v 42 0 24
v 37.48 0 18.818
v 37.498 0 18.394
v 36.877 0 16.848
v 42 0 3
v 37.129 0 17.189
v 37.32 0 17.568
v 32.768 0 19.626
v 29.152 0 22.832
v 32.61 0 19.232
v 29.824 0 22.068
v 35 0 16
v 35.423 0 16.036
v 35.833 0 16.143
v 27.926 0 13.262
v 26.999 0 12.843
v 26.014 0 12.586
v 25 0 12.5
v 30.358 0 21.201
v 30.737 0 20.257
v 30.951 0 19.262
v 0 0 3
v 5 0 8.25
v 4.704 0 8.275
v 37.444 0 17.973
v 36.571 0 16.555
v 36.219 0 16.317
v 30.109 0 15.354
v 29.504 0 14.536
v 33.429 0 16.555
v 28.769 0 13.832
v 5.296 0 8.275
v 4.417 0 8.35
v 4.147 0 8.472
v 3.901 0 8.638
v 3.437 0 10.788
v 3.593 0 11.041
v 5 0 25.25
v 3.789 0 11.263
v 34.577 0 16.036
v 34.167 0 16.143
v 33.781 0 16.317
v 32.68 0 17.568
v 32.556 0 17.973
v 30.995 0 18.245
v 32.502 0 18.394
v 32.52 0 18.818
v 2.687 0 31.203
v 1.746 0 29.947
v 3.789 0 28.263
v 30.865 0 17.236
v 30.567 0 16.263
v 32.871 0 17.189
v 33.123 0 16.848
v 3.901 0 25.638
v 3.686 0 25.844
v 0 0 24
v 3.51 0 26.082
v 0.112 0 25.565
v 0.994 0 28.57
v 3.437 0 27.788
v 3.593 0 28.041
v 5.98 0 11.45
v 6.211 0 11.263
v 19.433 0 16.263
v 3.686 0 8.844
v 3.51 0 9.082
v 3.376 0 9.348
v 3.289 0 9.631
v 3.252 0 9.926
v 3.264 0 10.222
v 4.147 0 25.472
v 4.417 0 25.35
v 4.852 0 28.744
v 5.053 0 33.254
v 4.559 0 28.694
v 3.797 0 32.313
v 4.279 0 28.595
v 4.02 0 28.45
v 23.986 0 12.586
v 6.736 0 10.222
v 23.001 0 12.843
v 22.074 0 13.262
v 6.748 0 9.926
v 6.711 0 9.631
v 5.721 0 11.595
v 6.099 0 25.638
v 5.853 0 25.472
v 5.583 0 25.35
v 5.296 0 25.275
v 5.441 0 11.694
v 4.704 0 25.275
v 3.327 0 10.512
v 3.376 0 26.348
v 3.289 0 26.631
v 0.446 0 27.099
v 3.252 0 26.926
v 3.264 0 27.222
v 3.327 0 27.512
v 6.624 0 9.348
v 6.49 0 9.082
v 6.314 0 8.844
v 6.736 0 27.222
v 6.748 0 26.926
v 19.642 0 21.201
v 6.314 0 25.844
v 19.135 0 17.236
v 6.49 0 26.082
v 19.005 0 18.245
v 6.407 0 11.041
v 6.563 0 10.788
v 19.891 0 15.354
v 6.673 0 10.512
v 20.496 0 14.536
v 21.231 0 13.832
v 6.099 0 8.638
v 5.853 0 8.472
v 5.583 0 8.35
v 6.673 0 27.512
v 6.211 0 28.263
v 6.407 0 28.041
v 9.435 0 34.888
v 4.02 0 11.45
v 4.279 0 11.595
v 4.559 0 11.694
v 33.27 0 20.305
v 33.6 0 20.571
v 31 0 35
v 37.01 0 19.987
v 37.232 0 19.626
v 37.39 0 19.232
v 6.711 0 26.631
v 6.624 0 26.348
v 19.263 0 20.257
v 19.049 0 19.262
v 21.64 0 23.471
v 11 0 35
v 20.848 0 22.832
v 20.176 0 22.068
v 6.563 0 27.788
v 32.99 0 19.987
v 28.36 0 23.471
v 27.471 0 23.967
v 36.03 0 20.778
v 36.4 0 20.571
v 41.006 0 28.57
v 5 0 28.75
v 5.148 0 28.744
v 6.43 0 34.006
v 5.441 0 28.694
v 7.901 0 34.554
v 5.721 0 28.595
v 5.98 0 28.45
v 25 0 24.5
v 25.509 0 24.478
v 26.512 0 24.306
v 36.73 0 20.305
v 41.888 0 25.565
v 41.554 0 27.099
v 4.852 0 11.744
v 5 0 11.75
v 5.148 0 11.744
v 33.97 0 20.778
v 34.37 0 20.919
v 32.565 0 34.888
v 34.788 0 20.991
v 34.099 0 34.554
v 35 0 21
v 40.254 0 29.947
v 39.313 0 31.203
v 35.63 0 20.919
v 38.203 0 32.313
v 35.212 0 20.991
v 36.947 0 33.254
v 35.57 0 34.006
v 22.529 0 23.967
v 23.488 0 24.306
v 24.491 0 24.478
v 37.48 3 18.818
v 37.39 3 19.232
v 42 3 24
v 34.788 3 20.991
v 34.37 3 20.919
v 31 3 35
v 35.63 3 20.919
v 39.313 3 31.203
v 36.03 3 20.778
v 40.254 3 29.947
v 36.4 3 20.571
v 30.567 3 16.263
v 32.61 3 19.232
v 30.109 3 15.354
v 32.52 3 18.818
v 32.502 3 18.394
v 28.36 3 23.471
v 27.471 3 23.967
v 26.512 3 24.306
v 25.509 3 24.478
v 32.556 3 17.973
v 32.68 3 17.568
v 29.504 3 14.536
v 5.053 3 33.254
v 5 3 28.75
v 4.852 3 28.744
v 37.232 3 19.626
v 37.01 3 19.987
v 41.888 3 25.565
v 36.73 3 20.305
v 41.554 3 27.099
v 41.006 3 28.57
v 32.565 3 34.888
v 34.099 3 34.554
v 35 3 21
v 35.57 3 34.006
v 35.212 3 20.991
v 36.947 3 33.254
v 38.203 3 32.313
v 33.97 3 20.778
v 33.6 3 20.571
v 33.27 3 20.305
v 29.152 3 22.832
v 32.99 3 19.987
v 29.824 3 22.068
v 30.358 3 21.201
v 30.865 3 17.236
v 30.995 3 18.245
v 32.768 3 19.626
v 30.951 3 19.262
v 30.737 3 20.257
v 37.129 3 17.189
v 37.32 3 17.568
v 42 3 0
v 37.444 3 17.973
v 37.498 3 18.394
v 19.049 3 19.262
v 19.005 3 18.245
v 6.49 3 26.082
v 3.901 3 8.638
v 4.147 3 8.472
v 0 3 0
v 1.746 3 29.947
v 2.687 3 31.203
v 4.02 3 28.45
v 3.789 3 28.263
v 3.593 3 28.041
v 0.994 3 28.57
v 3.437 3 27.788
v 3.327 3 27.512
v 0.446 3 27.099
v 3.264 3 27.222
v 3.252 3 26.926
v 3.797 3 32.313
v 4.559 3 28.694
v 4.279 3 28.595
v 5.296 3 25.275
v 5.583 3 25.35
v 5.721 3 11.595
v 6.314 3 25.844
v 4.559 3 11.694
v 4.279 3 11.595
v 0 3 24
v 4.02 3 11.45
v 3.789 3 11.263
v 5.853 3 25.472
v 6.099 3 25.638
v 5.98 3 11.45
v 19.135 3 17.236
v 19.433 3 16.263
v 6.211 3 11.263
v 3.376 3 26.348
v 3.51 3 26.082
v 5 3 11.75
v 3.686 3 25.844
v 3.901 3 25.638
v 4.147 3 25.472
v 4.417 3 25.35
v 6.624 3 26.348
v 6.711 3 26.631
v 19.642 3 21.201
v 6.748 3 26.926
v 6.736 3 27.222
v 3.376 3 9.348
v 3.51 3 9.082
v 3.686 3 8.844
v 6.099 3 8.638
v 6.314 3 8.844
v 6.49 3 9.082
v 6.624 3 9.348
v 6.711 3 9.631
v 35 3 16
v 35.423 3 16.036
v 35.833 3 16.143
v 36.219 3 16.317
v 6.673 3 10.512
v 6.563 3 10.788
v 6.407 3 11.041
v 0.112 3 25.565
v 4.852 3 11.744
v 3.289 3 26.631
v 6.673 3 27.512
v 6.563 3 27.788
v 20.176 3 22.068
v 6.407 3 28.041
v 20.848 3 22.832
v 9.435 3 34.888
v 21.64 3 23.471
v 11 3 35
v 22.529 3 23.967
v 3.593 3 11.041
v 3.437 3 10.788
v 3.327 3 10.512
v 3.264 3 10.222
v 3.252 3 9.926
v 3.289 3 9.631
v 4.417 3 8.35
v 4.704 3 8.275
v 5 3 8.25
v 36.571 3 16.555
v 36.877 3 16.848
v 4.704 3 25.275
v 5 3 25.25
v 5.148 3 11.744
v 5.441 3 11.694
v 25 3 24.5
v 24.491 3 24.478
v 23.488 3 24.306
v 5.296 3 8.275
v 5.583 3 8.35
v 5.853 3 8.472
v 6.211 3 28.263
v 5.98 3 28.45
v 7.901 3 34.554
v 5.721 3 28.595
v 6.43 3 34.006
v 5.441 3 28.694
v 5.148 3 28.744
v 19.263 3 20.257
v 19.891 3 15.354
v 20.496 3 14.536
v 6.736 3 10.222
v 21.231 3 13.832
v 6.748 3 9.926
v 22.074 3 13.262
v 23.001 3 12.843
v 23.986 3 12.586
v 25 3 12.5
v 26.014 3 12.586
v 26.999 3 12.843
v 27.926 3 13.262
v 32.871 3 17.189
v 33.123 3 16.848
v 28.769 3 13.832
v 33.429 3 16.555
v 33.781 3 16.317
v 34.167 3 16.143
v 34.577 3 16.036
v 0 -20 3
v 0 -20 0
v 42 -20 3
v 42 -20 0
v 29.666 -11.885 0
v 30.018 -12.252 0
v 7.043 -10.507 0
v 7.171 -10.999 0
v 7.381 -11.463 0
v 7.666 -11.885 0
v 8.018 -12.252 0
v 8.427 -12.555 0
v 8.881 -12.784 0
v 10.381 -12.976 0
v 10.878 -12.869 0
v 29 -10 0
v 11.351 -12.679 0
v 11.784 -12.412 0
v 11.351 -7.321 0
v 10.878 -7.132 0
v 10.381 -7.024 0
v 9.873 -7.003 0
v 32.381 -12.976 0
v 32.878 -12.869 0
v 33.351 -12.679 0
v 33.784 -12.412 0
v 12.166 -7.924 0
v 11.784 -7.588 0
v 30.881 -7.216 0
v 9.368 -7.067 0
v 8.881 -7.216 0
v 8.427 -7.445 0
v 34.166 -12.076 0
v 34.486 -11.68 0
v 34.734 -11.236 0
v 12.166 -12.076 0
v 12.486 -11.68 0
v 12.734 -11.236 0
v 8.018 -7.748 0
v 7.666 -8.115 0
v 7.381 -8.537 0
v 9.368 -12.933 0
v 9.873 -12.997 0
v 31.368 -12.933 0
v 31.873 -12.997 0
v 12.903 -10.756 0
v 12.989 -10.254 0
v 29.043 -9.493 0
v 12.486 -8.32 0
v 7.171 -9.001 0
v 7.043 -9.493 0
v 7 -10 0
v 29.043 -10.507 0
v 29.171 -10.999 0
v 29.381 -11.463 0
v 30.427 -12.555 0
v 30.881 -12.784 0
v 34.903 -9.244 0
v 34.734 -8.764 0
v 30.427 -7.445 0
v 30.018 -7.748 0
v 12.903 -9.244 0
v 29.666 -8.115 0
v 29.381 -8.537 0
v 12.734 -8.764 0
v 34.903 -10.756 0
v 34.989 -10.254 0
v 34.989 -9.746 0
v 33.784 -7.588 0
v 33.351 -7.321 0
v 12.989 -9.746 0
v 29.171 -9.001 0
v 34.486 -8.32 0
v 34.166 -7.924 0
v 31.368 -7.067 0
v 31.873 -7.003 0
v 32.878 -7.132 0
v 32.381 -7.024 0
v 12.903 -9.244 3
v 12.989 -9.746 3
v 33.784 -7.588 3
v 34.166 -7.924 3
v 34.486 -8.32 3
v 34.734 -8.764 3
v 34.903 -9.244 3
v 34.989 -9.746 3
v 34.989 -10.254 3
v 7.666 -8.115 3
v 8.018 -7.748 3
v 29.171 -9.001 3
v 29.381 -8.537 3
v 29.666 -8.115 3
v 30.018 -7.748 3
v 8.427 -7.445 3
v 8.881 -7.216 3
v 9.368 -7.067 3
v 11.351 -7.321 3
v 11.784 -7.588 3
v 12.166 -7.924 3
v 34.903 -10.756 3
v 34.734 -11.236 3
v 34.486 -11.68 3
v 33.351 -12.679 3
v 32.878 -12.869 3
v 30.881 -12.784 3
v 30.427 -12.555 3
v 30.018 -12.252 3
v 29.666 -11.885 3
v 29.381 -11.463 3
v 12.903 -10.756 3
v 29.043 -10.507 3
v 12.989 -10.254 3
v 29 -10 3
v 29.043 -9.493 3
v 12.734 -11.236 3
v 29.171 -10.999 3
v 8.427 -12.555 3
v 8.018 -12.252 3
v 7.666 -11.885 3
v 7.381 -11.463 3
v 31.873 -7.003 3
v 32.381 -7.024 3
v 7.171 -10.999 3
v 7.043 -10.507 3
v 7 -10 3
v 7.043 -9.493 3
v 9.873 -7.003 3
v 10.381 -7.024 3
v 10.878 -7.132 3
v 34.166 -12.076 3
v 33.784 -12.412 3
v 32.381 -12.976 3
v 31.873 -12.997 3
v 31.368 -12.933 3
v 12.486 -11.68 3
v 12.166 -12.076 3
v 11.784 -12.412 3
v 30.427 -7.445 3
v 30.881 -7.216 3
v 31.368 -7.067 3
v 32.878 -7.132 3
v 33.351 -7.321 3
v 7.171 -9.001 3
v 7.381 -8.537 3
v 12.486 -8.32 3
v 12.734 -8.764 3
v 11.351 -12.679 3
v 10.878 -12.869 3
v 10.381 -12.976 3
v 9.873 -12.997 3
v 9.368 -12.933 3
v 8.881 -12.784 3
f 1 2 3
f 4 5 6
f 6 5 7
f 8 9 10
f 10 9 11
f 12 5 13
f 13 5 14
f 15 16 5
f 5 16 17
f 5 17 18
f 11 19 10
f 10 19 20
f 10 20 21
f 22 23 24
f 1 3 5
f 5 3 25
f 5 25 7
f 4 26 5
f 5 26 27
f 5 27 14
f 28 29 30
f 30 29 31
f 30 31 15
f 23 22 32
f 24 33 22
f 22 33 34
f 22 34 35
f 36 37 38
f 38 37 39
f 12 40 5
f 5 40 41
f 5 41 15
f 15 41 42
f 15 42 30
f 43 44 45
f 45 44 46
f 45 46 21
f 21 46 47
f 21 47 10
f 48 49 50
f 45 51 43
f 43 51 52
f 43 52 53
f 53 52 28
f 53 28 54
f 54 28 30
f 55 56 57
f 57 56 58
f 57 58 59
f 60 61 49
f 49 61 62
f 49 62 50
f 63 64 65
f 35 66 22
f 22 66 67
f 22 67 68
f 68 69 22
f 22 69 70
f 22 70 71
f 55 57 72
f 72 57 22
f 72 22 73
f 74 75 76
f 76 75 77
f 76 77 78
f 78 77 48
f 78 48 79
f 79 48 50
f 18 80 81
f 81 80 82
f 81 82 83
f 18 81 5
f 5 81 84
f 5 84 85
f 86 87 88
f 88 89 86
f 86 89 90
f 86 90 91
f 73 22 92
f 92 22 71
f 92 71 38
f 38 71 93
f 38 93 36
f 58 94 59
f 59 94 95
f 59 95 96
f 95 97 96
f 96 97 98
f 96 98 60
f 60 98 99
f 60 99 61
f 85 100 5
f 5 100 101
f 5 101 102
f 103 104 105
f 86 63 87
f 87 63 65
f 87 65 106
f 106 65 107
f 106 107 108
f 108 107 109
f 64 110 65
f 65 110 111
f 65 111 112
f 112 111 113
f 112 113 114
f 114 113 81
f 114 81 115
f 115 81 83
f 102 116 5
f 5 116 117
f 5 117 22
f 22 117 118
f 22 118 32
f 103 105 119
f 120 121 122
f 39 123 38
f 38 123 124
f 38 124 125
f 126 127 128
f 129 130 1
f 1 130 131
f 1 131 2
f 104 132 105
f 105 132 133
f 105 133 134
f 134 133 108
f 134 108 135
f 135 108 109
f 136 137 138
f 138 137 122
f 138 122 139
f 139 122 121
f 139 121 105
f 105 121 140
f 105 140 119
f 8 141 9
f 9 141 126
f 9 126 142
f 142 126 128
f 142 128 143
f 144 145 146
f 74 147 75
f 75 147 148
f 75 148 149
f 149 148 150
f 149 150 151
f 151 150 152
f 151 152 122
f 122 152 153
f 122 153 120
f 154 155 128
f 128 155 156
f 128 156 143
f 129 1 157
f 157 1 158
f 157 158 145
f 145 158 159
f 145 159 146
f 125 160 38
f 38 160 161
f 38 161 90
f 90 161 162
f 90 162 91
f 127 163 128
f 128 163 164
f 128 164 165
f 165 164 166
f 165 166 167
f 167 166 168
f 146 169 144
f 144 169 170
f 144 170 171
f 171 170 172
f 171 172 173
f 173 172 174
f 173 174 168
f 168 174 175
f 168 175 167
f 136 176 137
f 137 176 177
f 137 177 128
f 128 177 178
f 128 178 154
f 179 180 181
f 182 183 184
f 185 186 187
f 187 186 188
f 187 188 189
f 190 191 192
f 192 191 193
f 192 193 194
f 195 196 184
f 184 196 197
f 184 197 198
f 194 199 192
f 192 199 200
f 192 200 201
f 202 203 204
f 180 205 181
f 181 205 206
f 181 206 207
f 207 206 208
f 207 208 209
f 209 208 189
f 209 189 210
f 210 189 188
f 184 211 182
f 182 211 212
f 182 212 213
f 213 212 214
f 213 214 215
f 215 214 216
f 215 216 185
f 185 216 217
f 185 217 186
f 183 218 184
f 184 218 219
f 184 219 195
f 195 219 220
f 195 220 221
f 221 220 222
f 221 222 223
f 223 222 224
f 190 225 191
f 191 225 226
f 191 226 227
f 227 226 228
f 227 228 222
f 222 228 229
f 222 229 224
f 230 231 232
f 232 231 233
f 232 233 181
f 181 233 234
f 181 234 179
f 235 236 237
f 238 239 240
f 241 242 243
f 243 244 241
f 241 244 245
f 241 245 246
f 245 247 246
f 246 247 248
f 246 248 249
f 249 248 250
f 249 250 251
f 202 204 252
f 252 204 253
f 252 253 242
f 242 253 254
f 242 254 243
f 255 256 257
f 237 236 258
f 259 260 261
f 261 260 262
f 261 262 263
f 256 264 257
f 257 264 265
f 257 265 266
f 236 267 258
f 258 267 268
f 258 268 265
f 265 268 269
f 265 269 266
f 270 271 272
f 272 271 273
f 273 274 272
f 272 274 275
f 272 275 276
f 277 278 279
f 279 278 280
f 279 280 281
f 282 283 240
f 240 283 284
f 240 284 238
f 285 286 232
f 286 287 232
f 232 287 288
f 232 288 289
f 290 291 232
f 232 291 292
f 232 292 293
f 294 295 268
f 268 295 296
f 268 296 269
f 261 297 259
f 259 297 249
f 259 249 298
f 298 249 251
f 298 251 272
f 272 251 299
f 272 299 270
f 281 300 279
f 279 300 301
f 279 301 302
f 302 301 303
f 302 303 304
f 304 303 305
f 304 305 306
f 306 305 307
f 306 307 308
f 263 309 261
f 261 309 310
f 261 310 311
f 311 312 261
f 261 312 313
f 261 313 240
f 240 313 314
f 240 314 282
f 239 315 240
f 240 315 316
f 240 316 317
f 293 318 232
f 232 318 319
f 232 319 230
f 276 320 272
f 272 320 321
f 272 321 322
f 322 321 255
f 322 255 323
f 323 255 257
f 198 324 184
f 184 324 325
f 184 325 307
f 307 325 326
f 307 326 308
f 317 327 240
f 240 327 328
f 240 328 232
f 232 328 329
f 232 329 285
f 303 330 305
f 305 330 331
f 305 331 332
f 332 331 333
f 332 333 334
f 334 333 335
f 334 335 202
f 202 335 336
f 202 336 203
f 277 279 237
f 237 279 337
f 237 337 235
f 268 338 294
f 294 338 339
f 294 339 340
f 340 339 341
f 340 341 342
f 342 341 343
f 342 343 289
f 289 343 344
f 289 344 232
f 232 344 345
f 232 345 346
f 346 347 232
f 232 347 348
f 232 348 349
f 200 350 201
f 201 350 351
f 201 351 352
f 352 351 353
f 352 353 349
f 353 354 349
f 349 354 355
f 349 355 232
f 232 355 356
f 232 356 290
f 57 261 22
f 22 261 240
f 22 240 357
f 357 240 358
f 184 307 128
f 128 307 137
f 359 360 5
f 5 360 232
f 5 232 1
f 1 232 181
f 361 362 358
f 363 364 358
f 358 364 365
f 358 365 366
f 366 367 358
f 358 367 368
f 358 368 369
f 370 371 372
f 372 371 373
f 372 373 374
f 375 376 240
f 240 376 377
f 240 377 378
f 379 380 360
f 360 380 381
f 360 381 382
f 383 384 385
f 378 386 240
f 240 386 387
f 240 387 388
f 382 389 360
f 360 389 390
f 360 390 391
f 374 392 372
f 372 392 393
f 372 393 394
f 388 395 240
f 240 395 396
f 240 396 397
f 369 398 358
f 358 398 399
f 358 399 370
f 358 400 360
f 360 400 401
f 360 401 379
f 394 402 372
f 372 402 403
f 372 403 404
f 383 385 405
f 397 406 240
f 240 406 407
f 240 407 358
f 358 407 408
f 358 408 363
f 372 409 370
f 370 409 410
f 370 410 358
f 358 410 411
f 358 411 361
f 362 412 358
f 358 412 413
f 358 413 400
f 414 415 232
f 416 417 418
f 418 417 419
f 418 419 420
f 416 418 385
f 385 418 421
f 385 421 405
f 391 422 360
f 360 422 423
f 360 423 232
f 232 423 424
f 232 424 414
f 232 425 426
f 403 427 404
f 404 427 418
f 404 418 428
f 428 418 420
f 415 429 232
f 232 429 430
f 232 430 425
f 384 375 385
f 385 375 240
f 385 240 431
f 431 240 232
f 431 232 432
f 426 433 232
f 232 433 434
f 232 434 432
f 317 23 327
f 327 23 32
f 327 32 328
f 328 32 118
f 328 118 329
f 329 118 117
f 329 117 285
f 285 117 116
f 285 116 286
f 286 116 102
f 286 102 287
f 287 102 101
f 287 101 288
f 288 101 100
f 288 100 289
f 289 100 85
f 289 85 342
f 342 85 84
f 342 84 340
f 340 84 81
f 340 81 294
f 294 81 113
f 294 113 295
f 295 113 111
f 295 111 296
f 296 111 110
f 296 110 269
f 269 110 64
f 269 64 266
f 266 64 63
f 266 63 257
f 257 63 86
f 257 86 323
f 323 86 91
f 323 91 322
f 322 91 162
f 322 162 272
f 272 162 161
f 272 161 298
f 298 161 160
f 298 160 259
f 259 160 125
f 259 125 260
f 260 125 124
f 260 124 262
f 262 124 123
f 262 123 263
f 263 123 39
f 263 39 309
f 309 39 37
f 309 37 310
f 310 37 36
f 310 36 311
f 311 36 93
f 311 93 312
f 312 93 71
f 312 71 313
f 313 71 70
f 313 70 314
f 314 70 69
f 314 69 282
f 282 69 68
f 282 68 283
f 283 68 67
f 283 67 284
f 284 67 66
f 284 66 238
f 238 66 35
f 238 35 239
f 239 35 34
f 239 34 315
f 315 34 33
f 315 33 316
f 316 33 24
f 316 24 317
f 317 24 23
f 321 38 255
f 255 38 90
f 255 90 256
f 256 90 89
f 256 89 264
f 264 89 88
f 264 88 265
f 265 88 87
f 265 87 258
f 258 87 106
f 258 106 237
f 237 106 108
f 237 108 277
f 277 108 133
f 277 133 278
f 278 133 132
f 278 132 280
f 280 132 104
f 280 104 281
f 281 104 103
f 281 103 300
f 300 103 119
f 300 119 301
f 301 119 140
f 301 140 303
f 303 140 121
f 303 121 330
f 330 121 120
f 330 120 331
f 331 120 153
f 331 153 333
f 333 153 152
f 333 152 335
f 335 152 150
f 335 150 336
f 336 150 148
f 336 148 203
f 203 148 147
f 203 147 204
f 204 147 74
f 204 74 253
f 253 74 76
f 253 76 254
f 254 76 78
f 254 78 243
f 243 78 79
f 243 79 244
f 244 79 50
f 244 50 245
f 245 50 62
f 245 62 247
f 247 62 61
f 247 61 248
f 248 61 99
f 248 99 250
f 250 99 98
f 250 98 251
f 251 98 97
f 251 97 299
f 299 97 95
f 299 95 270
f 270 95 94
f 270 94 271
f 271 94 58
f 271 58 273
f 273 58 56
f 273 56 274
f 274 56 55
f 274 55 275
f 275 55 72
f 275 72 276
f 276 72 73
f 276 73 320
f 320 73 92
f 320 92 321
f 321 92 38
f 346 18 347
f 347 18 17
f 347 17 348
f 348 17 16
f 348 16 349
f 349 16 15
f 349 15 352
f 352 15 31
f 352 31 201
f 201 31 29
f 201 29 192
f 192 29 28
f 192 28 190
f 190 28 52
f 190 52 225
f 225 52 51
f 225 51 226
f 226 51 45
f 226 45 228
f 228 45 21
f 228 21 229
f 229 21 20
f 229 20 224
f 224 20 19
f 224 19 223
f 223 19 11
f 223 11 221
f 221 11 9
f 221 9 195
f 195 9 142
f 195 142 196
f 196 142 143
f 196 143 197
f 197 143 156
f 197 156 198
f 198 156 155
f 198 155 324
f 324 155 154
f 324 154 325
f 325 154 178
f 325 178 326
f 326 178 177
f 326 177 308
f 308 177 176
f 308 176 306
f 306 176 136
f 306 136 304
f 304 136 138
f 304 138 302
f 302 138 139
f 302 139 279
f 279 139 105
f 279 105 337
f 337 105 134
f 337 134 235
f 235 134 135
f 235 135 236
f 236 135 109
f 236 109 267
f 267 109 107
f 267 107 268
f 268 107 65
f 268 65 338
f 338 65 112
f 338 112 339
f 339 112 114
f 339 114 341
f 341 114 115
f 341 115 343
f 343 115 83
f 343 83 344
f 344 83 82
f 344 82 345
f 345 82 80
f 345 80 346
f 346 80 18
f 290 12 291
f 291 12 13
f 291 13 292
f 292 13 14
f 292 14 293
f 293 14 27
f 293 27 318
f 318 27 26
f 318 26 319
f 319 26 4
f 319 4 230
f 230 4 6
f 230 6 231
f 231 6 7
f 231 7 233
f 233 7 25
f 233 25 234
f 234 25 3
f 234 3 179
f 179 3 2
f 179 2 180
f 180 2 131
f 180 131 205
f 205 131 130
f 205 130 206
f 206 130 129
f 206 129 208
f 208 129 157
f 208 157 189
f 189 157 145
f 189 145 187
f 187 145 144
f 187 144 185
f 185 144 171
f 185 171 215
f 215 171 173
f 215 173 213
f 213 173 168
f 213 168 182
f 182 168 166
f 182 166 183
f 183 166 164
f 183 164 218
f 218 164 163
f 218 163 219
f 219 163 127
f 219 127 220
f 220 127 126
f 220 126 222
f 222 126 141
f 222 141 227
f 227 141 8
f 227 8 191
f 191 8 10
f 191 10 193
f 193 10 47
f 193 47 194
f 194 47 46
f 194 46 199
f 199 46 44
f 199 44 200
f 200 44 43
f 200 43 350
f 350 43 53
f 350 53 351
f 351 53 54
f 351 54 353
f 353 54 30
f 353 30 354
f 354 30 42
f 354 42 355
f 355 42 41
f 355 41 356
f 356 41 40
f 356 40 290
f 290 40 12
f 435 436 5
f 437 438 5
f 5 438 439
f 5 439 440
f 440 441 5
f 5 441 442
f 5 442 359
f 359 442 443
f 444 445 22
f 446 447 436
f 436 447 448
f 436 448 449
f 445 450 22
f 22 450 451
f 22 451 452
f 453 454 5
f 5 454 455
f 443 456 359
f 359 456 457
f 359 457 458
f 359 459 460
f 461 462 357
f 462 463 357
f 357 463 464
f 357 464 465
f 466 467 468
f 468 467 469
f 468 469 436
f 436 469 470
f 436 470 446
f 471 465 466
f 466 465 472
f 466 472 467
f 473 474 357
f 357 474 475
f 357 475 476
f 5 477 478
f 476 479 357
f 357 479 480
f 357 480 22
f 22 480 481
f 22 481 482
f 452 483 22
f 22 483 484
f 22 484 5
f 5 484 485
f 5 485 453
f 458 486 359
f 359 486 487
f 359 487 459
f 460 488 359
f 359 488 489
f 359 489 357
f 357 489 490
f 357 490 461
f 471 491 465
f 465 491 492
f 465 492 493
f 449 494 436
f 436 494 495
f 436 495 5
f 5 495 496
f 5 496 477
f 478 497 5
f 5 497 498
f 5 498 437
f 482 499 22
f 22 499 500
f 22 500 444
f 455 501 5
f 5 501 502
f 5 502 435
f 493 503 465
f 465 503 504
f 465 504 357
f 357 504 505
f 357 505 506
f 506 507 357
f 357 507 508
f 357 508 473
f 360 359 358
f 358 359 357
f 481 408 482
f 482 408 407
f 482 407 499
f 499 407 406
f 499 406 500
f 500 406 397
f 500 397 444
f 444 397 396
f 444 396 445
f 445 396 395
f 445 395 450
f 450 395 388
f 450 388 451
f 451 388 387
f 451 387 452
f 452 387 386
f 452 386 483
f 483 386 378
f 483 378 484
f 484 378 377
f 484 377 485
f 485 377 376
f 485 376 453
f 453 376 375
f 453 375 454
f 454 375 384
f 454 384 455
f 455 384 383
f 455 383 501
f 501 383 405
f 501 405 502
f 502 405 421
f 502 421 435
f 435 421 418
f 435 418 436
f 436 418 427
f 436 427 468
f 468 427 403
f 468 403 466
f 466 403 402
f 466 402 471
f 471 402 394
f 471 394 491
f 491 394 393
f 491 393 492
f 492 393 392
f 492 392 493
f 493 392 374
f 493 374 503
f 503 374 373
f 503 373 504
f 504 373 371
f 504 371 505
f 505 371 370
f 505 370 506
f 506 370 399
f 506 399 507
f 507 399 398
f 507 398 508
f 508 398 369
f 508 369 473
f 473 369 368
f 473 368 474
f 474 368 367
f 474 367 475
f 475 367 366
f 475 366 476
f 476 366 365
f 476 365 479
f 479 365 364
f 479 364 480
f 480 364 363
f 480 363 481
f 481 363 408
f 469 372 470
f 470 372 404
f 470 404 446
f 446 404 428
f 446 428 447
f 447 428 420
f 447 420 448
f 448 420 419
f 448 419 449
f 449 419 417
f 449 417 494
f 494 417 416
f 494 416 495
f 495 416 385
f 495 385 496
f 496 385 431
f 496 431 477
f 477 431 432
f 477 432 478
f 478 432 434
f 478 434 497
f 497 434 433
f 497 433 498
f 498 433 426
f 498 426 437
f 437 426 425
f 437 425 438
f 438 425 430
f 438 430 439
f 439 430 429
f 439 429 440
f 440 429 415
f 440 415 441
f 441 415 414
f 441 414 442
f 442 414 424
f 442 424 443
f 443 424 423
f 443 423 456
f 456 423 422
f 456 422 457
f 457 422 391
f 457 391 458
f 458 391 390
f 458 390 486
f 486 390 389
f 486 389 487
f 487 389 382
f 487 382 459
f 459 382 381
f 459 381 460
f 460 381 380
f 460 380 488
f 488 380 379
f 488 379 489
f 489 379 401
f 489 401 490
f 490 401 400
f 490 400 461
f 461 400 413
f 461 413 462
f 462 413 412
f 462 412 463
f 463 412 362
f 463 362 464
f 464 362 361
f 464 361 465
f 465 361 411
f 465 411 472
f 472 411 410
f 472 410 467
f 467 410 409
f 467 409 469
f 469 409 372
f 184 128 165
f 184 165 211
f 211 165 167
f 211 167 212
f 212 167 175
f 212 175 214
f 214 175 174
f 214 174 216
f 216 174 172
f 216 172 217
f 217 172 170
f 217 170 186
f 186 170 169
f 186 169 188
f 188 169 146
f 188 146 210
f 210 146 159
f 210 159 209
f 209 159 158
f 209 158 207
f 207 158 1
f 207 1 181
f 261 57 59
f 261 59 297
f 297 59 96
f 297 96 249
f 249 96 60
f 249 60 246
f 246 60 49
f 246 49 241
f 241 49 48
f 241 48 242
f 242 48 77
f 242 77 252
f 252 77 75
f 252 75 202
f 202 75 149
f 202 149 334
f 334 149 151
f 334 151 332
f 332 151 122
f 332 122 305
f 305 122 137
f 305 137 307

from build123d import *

# Parameters (mm, degrees)
SKETCH1_W           = 42
SKETCH1_H           = 35
SKETCH1_R           = 1.75
SKETCH1_R_2         = 6
SKETCH1_R_3         = 2.5
BOSS_EXTRUDE1_DEPTH = 3
SKETCH2_W           = 42
SKETCH2_H           = 3
BOSS_EXTRUDE2_DEPTH = 20
SKETCH3_R           = 3
CUT_EXTRUDE1_DEPTH  = 20
FILLET1_R           = 11


with BuildPart() as part:
    # Sketch1 → Boss-Extrude1 (new body)
    with BuildSketch(Plane(origin=(0, 0, 0), x_dir=(1, 0, 0), z_dir=(0, 1, 0))):
        with Locations((21, -17.5)):
            Rectangle(SKETCH1_W, SKETCH1_H)
        with Locations(Location((5, -10, 0), (0, 0, 270))):
            Circle(SKETCH1_R, mode=Mode.SUBTRACT)
        with Locations(Location((5, -27, 0), (0, 0, 270))):
            Circle(SKETCH1_R, mode=Mode.SUBTRACT)
        with Locations(Location((25, -18.5, 0), (0, 0, 270))):
            Circle(SKETCH1_R_2, mode=Mode.SUBTRACT)
        with Locations(Location((35, -18.5, 0), (0, 0, 270))):
            Circle(SKETCH1_R_3, mode=Mode.SUBTRACT)
    extrude(amount=BOSS_EXTRUDE1_DEPTH)

    # Sketch2 → Boss-Extrude2 (add)
    with BuildSketch(Plane.XZ):
        with Locations((21, 1.5)):
            Rectangle(SKETCH2_W, SKETCH2_H)
    extrude(amount=BOSS_EXTRUDE2_DEPTH)

    # Sketch3 → Cut-Extrude1 (cut)
    with BuildSketch(Plane(origin=(0, 0, 0), x_dir=(-1, 0, 0), z_dir=(0, 0, -1))):
        with Locations((-32, -10)):
            Circle(SKETCH3_R)
        with Locations((-10, -10)):
            Circle(SKETCH3_R)
    extrude(amount=-CUT_EXTRUDE1_DEPTH, mode=Mode.SUBTRACT)

    # Fillet1
    fillet1_edges = [part.edges().sort_by_distance(p)[0] for p in [
        (42, 1.5, 35),
        (0, 1.5, 35),
    ]]
    fillet(fillet1_edges, radius=FILLET1_R)


solid = part.part
